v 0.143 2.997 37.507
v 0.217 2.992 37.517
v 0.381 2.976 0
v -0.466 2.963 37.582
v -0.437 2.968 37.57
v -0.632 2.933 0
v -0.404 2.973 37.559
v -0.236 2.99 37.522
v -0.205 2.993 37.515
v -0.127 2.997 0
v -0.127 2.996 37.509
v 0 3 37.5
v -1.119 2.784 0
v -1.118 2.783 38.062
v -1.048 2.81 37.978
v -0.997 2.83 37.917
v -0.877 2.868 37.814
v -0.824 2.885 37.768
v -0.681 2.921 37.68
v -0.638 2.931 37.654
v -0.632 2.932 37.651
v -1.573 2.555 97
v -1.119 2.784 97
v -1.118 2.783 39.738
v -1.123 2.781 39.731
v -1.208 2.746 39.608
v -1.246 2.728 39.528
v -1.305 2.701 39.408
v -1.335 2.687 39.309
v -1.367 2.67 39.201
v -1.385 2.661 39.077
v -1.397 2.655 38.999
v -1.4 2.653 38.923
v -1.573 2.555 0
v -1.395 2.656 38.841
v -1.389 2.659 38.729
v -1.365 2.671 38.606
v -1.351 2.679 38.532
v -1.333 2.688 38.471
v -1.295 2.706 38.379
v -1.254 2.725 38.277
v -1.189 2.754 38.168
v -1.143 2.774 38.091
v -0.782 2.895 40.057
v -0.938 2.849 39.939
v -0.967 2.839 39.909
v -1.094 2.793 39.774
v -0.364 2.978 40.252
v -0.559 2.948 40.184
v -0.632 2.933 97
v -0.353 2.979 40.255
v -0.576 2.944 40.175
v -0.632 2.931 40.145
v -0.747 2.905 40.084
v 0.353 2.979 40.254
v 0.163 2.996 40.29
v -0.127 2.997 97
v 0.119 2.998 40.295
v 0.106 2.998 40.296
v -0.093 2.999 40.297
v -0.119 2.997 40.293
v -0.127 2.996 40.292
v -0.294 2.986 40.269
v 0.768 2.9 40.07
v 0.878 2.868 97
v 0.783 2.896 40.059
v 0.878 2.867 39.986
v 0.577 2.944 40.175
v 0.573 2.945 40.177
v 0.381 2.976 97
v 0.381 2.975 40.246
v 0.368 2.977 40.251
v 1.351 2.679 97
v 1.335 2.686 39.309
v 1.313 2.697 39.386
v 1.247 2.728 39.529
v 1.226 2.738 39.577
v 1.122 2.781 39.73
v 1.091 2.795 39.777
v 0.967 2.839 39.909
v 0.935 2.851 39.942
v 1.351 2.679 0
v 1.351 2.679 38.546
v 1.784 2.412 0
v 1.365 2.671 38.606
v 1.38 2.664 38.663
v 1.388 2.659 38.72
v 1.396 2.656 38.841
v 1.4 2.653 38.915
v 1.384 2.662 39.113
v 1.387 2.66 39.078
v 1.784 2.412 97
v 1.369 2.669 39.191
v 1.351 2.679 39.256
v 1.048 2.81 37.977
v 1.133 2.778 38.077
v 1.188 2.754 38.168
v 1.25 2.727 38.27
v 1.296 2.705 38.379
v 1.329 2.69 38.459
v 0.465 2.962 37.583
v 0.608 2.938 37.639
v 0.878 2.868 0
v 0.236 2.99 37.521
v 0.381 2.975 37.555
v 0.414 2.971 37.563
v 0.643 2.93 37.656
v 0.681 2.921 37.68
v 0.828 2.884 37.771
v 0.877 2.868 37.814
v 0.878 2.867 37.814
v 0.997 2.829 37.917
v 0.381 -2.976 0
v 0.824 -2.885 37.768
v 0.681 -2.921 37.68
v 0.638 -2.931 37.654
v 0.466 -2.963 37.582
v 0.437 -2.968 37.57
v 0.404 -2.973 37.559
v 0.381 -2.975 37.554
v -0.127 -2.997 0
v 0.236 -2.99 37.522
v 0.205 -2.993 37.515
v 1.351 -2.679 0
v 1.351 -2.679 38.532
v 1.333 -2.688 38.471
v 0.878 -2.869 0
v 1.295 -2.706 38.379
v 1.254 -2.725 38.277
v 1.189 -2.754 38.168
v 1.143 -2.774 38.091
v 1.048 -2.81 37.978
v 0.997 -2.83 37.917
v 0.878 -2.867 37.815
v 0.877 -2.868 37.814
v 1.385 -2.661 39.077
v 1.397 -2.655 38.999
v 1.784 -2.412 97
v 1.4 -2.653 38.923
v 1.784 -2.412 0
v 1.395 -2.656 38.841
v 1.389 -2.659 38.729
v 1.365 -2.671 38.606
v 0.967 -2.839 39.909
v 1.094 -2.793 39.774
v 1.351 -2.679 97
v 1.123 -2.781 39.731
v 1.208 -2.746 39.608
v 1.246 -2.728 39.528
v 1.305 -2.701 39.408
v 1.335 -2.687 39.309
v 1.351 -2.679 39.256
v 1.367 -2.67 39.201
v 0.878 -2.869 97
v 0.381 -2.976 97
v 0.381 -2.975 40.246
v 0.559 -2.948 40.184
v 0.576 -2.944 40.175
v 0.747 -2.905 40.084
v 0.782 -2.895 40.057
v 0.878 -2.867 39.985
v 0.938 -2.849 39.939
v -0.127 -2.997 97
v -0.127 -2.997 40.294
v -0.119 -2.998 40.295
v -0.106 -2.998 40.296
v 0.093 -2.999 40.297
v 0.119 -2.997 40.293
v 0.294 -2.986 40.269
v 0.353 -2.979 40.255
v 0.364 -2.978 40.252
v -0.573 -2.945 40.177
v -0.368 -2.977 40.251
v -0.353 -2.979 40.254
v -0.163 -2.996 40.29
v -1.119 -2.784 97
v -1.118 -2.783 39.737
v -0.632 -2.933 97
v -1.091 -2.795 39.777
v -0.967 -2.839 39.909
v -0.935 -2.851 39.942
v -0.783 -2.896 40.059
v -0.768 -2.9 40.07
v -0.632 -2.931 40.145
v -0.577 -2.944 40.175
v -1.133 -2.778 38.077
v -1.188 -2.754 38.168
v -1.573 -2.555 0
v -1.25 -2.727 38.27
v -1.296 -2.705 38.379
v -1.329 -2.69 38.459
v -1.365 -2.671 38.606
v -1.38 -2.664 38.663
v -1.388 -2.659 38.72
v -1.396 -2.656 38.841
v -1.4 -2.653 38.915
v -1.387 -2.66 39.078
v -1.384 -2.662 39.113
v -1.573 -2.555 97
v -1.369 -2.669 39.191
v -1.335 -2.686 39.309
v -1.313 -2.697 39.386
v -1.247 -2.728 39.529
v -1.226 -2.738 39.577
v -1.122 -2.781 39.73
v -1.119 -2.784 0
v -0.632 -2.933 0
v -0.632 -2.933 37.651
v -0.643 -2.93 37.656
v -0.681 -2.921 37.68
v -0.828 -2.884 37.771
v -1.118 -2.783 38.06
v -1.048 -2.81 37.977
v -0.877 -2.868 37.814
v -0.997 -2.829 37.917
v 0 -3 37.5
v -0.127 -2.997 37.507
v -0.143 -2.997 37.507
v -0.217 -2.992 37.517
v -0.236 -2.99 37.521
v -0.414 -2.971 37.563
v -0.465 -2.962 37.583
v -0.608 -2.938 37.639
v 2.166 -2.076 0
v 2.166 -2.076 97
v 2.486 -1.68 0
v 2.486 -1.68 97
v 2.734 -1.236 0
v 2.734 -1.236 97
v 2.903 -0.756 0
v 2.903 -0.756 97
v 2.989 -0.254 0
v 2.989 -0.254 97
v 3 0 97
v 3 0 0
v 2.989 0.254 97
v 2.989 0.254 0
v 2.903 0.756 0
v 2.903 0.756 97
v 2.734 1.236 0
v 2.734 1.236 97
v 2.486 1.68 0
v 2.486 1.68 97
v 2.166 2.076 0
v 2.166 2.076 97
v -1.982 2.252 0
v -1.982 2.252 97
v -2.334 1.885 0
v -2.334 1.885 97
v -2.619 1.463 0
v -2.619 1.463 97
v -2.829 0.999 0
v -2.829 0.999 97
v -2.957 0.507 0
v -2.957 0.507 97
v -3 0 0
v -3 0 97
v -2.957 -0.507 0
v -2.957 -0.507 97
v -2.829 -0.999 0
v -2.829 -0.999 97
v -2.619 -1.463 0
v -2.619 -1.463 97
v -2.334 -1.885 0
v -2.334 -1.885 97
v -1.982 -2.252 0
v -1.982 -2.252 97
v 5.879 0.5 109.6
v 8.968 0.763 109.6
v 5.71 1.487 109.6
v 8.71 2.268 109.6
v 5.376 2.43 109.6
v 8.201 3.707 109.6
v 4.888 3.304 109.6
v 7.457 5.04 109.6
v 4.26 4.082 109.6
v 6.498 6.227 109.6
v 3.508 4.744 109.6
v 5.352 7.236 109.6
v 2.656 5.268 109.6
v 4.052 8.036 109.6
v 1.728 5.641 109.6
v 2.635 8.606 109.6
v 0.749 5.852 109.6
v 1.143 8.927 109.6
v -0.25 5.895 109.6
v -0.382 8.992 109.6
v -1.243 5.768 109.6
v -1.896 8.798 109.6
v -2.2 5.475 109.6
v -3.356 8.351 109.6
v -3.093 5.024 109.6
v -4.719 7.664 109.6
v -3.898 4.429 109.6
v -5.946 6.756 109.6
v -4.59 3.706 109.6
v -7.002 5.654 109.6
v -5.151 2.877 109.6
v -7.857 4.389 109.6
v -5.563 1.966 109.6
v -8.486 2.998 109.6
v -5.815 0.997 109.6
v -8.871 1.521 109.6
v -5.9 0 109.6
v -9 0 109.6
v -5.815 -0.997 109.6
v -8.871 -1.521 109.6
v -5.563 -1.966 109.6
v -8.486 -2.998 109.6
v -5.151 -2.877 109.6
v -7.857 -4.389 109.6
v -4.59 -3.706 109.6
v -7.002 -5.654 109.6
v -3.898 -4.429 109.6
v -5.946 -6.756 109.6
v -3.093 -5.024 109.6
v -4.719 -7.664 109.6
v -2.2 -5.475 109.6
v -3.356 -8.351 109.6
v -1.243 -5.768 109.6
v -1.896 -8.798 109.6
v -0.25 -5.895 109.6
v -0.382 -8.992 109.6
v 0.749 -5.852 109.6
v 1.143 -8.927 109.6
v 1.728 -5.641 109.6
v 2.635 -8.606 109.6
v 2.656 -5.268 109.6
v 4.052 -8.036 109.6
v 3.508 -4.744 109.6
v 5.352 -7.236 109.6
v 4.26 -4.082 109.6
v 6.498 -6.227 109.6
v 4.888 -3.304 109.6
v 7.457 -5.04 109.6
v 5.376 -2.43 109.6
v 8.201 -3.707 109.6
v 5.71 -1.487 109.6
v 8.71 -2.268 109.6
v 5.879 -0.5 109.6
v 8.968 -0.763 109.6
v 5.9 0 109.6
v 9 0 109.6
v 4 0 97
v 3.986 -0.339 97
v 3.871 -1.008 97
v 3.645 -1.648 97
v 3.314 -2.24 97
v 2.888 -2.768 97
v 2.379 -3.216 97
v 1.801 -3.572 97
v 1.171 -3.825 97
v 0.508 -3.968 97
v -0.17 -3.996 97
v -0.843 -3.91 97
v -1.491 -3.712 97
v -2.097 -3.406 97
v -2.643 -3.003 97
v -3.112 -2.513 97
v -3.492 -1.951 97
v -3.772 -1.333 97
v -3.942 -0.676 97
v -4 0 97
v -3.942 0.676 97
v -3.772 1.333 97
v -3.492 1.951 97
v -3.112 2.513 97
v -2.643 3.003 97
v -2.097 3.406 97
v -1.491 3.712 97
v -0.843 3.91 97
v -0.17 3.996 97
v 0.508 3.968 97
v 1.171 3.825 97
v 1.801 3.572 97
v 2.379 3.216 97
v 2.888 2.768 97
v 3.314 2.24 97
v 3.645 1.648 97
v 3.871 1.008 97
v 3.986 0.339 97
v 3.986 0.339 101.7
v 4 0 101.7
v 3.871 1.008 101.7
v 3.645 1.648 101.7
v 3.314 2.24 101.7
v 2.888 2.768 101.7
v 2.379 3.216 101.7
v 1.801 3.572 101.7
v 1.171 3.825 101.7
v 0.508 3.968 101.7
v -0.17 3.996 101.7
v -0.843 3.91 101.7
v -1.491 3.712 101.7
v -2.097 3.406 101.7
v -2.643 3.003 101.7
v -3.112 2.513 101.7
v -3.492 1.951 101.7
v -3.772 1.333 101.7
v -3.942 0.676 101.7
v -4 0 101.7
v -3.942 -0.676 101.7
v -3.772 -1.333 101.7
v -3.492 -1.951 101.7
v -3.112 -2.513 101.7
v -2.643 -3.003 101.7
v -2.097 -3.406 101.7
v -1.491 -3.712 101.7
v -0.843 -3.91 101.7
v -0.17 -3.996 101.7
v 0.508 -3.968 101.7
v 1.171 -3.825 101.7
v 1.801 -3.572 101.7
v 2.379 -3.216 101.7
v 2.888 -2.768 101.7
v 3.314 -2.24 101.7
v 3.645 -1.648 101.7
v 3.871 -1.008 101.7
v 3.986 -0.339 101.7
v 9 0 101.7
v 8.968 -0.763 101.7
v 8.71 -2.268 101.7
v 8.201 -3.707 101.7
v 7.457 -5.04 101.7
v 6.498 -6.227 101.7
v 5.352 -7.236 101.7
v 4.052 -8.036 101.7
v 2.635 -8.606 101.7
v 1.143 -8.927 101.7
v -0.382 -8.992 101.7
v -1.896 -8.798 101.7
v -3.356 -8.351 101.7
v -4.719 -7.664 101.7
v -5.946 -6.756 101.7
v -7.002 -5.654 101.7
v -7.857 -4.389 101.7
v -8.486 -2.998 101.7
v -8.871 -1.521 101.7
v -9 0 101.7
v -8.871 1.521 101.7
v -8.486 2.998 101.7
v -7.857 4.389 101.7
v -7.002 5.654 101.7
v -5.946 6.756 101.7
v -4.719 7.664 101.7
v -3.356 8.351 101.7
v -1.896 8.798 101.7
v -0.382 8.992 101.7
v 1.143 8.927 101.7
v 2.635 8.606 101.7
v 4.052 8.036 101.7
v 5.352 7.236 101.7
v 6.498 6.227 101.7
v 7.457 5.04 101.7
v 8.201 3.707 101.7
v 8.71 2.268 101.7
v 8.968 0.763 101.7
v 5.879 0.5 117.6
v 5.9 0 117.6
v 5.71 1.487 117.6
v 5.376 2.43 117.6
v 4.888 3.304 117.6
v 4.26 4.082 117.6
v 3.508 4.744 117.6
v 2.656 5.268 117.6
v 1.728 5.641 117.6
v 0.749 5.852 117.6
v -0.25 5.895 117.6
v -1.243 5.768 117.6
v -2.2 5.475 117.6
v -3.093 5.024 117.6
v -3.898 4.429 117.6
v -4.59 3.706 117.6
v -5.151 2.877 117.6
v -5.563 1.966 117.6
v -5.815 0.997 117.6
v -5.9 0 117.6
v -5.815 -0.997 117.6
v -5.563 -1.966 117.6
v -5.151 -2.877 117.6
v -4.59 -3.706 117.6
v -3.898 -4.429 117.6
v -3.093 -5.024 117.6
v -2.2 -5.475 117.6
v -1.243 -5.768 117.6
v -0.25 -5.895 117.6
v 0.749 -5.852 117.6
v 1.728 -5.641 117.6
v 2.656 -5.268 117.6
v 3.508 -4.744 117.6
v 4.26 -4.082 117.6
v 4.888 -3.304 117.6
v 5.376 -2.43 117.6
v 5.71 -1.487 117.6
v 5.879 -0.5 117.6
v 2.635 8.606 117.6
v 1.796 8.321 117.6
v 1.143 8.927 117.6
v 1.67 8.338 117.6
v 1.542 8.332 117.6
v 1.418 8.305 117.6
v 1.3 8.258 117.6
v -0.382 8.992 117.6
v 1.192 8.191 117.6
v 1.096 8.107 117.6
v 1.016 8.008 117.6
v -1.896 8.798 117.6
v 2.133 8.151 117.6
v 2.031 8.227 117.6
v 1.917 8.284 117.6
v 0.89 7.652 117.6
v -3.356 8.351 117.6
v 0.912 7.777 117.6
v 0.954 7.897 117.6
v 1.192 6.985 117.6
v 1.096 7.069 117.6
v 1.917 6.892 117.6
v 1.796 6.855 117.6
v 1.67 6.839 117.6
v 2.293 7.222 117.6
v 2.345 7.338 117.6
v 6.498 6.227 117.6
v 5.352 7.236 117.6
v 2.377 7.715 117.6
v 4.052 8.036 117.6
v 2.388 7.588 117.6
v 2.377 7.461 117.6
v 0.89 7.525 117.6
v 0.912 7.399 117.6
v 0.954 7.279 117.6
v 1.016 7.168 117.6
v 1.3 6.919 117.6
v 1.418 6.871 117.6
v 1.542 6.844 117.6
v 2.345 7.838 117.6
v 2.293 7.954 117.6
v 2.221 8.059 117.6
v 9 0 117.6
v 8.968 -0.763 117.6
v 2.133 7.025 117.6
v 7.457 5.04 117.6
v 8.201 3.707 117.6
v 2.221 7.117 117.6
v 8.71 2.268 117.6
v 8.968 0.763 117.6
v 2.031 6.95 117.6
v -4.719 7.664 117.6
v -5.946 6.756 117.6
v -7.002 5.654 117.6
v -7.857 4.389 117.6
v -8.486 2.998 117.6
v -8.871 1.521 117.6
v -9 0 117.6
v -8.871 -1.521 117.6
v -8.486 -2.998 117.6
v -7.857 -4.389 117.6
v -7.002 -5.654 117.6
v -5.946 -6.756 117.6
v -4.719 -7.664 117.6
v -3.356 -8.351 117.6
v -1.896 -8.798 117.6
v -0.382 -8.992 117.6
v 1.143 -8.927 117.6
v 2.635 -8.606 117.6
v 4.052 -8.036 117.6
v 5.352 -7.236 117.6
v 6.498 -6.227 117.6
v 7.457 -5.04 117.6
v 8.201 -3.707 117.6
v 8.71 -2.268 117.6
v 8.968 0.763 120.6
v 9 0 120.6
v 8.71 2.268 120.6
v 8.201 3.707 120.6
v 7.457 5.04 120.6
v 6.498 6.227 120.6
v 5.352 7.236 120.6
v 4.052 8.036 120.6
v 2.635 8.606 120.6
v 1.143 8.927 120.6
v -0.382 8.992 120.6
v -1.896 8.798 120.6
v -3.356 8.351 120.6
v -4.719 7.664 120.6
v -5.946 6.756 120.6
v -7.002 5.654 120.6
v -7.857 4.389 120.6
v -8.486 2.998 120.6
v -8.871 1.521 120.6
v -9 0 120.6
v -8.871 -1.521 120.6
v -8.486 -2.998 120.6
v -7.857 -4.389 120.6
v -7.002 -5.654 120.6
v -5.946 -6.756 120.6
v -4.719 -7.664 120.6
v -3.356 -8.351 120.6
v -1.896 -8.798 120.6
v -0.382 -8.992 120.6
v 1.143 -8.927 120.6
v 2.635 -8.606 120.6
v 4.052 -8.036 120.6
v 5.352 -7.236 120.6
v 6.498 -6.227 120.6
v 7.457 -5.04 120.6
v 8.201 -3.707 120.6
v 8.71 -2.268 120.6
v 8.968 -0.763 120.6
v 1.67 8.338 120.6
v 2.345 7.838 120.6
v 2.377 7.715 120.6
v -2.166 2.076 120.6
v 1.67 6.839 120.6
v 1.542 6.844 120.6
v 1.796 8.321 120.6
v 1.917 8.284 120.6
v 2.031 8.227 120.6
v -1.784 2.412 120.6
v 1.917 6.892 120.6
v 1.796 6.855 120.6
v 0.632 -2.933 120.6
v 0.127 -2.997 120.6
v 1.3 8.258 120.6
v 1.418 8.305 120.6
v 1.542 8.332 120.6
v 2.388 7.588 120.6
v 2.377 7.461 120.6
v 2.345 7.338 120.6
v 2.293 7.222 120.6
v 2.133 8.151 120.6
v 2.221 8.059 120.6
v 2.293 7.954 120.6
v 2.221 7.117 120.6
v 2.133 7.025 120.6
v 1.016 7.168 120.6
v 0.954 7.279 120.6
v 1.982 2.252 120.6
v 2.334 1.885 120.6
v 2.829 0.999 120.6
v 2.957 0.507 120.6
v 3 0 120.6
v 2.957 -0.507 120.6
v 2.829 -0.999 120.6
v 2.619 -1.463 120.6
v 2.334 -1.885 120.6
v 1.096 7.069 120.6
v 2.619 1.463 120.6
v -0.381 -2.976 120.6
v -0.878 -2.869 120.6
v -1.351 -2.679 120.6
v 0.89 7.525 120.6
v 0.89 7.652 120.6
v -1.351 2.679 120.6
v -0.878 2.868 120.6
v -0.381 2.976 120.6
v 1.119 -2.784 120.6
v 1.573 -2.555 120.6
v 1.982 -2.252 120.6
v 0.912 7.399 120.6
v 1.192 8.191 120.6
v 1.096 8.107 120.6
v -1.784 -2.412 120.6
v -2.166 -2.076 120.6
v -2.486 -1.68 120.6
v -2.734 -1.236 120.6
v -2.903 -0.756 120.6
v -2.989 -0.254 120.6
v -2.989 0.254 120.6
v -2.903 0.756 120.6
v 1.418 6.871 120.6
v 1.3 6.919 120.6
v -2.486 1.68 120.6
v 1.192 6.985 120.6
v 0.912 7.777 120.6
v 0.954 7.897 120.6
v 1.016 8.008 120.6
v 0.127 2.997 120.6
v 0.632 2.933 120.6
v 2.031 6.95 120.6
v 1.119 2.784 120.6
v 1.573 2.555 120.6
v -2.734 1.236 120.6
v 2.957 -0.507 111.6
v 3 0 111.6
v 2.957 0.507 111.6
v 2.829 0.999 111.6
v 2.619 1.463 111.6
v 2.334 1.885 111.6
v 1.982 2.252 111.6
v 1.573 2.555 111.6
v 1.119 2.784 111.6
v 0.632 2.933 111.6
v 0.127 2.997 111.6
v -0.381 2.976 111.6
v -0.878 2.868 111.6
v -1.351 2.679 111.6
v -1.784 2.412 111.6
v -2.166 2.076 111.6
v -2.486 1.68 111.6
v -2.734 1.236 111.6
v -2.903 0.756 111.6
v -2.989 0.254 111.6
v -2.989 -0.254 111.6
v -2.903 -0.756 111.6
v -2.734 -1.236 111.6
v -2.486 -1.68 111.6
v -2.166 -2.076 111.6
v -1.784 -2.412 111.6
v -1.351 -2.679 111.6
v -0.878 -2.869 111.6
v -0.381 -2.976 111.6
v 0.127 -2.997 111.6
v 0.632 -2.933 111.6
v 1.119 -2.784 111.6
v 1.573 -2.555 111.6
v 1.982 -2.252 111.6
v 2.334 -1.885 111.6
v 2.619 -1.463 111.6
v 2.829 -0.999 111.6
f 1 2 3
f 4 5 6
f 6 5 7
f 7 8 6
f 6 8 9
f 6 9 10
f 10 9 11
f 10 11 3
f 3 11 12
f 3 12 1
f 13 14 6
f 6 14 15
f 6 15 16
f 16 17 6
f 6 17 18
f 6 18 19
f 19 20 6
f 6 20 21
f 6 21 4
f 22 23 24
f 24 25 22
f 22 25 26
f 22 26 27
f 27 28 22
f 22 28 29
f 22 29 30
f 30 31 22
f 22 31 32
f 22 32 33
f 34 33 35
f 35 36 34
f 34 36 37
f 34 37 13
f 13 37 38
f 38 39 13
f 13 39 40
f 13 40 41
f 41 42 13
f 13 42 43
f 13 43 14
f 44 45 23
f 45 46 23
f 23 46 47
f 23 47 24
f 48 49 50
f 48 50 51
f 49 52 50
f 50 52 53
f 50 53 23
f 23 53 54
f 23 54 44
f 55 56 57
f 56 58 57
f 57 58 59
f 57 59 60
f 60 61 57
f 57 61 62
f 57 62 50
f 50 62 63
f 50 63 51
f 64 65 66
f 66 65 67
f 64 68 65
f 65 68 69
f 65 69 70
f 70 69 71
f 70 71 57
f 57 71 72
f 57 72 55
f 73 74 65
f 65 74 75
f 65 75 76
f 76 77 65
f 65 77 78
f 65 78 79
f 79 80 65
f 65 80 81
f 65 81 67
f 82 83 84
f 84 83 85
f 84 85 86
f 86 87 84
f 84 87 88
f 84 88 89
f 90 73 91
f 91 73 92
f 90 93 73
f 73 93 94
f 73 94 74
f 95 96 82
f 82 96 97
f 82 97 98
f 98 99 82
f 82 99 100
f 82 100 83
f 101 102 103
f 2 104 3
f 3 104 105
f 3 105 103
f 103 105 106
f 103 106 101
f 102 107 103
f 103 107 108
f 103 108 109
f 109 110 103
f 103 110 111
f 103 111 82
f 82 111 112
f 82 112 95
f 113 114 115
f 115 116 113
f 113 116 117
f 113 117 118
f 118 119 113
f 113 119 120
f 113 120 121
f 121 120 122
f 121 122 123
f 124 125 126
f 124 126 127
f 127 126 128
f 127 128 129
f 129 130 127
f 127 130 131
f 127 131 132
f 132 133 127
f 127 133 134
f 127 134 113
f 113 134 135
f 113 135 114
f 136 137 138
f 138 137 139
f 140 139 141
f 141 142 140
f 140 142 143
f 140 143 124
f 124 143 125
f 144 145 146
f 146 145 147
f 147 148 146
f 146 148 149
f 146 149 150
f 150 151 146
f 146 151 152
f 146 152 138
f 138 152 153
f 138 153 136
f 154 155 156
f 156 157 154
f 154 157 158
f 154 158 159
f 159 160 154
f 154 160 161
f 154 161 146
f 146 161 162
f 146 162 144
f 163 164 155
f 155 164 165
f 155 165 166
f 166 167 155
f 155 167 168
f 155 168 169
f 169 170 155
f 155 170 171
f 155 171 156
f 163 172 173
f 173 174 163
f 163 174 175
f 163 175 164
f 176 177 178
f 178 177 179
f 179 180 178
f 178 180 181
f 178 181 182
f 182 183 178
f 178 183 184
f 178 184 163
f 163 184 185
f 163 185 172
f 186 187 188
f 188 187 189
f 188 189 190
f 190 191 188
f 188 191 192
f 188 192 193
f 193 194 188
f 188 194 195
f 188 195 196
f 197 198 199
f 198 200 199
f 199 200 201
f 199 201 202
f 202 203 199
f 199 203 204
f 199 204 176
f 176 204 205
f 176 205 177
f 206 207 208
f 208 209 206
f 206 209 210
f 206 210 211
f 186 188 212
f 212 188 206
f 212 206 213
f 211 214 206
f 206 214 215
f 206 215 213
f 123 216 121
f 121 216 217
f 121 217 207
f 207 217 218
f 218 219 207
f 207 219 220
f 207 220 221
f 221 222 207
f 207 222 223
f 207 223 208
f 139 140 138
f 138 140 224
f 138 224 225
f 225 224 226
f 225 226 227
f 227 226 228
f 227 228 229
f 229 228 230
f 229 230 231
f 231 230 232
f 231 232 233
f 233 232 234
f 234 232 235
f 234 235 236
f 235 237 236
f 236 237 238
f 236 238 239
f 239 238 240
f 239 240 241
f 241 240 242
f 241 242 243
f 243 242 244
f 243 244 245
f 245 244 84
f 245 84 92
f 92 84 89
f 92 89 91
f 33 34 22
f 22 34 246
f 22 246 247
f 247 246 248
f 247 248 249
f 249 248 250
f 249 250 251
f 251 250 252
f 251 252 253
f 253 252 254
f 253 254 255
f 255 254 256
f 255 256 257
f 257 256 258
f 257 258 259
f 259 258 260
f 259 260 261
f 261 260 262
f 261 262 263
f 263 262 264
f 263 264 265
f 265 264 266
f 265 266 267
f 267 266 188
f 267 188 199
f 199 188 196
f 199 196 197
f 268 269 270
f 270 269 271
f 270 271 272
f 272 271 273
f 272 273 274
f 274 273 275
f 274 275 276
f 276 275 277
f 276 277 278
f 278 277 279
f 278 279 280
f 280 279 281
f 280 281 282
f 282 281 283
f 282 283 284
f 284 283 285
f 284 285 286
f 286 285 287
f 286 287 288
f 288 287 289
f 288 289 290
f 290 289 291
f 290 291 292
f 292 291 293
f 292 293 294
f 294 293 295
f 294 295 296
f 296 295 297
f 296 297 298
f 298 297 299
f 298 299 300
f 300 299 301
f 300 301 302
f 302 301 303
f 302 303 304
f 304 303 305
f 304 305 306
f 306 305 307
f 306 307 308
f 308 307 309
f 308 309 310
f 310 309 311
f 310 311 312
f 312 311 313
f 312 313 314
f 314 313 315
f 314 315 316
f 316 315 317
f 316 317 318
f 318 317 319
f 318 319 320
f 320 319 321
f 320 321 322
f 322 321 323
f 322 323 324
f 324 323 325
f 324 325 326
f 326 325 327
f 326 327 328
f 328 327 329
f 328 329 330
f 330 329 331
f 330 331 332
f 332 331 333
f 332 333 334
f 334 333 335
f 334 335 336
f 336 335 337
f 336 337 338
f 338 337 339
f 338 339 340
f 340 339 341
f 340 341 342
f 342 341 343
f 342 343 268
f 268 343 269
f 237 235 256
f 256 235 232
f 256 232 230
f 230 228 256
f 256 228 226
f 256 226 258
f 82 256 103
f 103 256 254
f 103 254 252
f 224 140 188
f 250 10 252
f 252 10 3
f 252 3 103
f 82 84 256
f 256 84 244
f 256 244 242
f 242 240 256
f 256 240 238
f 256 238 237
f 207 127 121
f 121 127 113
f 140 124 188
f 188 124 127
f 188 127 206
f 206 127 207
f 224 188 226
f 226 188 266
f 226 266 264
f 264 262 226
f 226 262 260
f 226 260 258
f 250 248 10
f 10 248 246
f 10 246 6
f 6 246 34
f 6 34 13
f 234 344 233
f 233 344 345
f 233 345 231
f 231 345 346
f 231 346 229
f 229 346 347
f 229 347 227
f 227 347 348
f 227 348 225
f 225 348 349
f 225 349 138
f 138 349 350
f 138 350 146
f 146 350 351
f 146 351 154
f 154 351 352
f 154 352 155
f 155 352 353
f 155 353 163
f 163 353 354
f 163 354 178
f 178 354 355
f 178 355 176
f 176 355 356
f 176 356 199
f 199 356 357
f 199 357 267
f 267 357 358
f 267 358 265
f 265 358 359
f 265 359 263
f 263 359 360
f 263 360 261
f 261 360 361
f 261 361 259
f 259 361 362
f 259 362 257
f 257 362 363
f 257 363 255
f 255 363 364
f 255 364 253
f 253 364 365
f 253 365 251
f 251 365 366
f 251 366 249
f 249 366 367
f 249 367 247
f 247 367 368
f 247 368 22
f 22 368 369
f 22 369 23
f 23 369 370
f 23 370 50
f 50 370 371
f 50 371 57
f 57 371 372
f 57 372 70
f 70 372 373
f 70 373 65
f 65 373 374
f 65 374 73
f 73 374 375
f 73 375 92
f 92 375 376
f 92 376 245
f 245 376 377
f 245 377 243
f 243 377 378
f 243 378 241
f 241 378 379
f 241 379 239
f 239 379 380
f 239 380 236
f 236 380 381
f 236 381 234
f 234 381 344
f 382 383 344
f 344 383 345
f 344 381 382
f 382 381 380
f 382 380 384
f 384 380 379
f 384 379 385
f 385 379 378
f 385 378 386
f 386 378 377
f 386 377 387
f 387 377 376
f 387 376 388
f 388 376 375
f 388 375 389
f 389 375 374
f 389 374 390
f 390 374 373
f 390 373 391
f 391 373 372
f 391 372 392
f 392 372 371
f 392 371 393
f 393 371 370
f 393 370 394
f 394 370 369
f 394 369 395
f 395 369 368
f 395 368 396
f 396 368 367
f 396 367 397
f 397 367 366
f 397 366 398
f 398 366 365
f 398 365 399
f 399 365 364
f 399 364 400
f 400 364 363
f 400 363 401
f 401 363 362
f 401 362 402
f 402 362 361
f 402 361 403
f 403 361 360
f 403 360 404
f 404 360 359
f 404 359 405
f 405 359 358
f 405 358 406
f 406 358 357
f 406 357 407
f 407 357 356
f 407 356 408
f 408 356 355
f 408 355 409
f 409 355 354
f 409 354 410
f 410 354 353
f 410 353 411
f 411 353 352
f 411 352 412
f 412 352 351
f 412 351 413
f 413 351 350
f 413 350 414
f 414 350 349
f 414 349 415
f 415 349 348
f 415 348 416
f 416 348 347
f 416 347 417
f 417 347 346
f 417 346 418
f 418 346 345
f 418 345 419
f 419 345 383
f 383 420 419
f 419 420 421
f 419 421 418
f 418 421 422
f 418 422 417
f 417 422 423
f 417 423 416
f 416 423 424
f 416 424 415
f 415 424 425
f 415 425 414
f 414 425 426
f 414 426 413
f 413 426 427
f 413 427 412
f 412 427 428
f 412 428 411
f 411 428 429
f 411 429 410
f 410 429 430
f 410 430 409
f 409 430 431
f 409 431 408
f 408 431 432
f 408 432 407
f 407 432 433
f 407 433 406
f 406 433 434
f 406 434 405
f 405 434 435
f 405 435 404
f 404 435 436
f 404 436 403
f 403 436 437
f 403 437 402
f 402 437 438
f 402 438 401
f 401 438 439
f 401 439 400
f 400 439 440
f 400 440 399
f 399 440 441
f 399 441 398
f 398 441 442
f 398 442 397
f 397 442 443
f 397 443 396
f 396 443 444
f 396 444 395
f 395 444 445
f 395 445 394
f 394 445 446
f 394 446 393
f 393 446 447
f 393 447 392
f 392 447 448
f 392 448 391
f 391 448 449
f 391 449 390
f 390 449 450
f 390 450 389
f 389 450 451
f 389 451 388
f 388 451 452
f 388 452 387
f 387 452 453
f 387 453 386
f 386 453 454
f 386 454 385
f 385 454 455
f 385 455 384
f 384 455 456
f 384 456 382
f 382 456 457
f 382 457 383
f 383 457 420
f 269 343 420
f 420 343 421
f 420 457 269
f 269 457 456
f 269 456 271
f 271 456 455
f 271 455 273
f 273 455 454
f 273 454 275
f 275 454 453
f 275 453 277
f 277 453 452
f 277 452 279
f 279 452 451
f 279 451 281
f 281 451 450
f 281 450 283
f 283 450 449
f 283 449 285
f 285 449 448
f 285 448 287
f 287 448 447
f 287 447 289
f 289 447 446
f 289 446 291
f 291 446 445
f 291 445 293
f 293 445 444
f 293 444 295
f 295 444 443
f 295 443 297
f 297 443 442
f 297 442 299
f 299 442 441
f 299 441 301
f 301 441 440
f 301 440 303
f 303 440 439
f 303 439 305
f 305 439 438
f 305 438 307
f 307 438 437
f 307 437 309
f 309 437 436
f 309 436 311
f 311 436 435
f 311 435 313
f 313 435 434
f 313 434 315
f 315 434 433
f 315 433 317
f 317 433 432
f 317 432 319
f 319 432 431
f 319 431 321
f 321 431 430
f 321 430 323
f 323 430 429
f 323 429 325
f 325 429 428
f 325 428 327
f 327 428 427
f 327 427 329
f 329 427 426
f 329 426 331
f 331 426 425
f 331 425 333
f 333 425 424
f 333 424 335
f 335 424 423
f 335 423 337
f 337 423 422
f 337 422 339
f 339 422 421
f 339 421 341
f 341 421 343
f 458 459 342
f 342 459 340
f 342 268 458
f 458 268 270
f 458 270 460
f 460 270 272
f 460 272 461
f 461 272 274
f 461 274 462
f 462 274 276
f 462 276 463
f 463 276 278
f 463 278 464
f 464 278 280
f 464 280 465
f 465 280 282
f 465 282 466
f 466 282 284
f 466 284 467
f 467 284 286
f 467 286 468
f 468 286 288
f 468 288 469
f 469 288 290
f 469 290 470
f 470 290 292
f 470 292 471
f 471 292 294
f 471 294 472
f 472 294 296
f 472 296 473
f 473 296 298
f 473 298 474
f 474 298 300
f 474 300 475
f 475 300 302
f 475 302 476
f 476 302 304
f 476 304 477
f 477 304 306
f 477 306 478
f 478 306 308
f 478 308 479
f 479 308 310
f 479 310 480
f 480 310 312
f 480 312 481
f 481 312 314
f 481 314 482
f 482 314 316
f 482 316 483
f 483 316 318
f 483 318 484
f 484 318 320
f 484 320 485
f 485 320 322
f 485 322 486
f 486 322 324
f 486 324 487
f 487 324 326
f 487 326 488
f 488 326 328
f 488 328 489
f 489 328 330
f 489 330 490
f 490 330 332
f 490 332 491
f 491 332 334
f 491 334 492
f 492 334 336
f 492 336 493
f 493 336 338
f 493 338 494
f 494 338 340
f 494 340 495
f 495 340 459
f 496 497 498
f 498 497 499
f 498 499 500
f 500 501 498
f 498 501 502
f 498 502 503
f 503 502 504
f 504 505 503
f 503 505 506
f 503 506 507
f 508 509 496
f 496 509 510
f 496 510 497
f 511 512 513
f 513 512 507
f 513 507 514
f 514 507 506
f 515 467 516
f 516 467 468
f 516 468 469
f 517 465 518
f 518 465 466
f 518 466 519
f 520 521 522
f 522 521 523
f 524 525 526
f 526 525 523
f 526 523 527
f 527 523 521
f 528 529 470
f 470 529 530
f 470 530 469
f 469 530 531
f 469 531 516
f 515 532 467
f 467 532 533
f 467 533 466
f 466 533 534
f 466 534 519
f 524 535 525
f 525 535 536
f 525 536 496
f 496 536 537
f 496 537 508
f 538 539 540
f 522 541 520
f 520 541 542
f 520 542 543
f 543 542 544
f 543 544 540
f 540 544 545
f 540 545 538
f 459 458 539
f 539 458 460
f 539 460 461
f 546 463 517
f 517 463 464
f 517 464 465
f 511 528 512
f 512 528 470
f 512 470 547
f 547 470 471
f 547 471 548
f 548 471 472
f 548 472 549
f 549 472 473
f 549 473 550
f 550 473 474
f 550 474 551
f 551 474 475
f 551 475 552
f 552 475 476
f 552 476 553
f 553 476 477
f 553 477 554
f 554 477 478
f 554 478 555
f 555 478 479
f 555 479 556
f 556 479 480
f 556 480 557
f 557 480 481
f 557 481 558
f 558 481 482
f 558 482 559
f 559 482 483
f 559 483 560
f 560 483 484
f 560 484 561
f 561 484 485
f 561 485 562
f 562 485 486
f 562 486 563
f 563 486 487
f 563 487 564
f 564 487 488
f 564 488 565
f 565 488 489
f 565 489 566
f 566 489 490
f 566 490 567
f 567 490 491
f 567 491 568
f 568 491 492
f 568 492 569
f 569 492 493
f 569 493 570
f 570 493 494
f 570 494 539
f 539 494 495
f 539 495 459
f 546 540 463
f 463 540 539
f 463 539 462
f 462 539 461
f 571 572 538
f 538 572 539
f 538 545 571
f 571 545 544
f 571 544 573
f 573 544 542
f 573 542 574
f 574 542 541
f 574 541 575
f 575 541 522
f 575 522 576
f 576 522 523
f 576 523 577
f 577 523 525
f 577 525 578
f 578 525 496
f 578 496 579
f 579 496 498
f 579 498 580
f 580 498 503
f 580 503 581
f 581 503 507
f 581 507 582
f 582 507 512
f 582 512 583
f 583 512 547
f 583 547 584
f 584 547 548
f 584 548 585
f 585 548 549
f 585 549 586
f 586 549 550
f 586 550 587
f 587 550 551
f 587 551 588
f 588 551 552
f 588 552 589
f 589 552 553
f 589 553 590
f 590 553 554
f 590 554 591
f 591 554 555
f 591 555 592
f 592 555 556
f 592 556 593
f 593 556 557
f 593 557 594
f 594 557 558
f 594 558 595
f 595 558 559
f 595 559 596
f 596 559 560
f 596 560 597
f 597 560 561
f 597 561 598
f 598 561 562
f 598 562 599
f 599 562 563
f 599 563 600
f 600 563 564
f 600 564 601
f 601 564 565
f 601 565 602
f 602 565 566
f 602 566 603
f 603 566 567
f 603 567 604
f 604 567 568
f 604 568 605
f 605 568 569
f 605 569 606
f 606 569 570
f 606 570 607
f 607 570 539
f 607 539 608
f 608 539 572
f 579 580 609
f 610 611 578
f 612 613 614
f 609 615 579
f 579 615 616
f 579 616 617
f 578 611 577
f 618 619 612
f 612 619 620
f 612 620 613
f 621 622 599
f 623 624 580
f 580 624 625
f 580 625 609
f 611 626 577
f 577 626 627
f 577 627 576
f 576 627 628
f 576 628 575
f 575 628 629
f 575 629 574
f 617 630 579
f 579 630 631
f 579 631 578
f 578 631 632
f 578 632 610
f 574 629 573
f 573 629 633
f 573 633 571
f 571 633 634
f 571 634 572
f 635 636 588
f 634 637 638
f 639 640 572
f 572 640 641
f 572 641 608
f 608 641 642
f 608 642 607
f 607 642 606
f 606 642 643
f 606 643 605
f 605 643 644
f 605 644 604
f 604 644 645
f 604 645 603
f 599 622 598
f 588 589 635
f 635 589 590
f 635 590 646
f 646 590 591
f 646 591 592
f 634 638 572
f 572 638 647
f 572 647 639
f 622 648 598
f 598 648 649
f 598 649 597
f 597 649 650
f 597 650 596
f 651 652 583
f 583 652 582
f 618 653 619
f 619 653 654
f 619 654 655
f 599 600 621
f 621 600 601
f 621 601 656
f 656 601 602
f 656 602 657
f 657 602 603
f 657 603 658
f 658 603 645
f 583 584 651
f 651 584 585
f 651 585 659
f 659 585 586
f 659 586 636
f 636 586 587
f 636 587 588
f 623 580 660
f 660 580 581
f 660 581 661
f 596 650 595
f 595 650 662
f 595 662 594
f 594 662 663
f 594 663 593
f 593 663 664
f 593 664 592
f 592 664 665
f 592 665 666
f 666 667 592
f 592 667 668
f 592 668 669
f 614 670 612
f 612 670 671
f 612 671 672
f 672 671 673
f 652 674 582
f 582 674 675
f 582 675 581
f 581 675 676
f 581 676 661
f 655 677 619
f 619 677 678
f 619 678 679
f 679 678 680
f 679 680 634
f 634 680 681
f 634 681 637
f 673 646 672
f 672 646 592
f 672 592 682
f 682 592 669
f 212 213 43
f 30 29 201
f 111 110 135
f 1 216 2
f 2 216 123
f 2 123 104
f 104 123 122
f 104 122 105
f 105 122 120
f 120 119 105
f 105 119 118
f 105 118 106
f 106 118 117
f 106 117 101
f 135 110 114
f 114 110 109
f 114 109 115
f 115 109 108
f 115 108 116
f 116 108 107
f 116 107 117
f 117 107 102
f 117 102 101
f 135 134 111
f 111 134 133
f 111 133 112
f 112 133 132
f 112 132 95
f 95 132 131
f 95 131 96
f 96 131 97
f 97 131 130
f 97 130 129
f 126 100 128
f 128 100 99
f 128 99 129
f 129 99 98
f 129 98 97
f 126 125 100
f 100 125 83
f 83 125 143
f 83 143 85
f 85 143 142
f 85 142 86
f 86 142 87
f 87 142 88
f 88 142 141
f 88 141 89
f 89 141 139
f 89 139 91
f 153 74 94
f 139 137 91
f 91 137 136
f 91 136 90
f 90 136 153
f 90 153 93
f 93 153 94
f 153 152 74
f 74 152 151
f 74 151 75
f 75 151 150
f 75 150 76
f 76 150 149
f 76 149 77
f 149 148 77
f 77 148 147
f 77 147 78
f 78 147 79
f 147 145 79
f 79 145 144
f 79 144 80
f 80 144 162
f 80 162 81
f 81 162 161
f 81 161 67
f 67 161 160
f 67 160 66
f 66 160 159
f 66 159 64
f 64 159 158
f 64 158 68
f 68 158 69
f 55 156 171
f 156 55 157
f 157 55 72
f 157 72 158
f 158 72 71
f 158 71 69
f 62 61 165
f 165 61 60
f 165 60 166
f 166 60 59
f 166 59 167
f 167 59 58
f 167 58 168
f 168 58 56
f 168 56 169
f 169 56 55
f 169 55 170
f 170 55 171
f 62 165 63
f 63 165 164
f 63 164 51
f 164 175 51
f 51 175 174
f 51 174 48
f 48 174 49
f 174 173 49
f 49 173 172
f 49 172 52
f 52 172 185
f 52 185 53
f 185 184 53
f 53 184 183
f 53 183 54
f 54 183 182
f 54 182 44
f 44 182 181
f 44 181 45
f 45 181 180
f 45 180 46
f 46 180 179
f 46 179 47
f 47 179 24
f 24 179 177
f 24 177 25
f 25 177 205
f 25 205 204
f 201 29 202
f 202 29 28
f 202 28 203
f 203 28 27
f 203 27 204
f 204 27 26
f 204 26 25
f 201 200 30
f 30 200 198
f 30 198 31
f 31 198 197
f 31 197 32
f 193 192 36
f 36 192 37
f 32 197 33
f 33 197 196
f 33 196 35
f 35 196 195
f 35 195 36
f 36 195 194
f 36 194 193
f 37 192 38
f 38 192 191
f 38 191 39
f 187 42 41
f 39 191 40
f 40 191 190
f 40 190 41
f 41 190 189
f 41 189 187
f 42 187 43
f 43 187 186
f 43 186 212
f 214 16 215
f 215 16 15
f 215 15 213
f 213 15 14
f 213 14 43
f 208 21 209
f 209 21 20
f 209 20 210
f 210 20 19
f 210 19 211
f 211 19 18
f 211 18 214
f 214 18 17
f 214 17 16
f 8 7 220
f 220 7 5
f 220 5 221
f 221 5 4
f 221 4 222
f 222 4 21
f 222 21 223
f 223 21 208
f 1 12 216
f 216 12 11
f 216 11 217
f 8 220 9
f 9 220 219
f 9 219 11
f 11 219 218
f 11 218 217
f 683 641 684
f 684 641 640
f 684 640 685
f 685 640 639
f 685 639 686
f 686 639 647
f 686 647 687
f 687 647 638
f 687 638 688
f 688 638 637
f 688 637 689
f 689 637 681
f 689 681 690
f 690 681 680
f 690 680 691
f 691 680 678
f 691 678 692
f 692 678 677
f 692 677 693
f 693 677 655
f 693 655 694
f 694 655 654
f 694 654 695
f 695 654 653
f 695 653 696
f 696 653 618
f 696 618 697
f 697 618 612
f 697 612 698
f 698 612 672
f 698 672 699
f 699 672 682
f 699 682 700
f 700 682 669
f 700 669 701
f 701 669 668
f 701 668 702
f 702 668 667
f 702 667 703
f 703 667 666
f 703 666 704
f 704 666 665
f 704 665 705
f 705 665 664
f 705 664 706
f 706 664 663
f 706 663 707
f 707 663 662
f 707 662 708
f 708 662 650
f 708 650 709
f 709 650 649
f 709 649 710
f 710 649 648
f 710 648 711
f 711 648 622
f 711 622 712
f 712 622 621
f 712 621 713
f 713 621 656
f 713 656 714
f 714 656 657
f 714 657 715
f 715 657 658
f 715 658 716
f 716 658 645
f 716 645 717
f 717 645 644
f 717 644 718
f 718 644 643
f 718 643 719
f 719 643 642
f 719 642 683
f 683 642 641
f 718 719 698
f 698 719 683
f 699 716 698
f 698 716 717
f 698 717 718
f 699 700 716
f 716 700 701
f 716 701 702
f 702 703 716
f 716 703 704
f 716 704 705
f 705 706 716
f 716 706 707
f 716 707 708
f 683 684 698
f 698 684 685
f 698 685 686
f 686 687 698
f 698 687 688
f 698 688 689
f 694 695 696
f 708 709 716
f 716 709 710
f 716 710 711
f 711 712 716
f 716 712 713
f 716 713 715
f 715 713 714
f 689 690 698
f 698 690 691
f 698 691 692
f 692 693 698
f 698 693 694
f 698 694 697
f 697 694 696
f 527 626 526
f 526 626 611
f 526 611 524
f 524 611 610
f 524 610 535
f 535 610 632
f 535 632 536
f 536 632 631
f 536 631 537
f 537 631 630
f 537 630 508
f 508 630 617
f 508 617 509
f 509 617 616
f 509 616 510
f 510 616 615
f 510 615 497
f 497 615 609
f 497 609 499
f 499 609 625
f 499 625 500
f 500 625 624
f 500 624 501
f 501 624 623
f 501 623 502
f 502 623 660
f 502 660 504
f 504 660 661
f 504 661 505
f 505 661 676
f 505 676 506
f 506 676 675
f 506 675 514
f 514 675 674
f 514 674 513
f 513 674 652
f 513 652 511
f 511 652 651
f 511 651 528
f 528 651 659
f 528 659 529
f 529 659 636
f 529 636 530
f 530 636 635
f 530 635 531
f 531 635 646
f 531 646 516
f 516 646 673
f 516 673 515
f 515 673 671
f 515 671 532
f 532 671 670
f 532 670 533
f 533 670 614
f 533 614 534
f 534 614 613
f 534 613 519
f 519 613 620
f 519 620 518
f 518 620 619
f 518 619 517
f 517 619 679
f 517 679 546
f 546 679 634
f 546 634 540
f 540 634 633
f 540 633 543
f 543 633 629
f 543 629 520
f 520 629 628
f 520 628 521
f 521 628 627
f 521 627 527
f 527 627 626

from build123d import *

# Parameters (mm, degrees)
SKETCH1_R               = 3
BOSS_EXTRUDE1_DEPTH     = 97
SKETCH2_R               = 4
BOSS_EXTRUDE2_DEPTH     = 4.7
SKETCH3_R               = 9
BOSS_EXTRUDE3_DEPTH     = 7.9
SKETCH4_R               = 5.9
BOSS_EXTRUDE4_DEPTH     = 8
SKETCH5_R               = 9
BOSS_EXTRUDE5_DEPTH     = 3
CUT_EXTRUDE1_DEPTH      = 82
CUT_EXTRUDE1_DEPTH_BACK = 82
SKETCH6_R               = 1.4
CUT_EXTRUDE2_START      = -9
SKETCH7_R               = 3
SKETCH7_R_2             = 0.75
CUT_EXTRUDE2_DEPTH      = 9


with BuildPart() as part:
    # Sketch1 → Boss-Extrude1 (new body)
    with BuildSketch(Plane.XY):
        Circle(SKETCH1_R)
    extrude(amount=BOSS_EXTRUDE1_DEPTH)

    # Sketch2 → Boss-Extrude2 (add)
    with BuildSketch(Plane.XY.offset(97)):
        Circle(SKETCH2_R)
    extrude(amount=BOSS_EXTRUDE2_DEPTH)

    # Sketch3 → Boss-Extrude3 (add)
    with BuildSketch(Plane.XY.offset(101.7)):
        Circle(SKETCH3_R)
    extrude(amount=BOSS_EXTRUDE3_DEPTH)

    # Sketch4 → Boss-Extrude4 (add)
    with BuildSketch(Plane.XY.offset(109.6)):
        Circle(SKETCH4_R)
    extrude(amount=BOSS_EXTRUDE4_DEPTH)

    # Sketch5 → Boss-Extrude5 (add)
    with BuildSketch(Plane.XY.offset(117.6)):
        Circle(SKETCH5_R)
    extrude(amount=BOSS_EXTRUDE5_DEPTH)

    # Sketch6 → Cut-Extrude1 (cut, two sides: drawn at the far end of the back side and taken through both)
    with BuildSketch(Plane(origin=(0, 0, 0), x_dir=(1, 0, 0), z_dir=(0, 1, 0)).offset(-CUT_EXTRUDE1_DEPTH_BACK)):
        with Locations((0, -38.9)):
            Circle(SKETCH6_R)
    extrude(amount=CUT_EXTRUDE1_DEPTH + CUT_EXTRUDE1_DEPTH_BACK, mode=Mode.SUBTRACT)

    # Sketch7 → Cut-Extrude2 (cut)
    with BuildSketch(Plane.XY.offset(120.6).offset(CUT_EXTRUDE2_START)):
        Circle(SKETCH7_R)
        with Locations((1.637751338, 7.588247864)):
            Circle(SKETCH7_R_2)
    extrude(amount=CUT_EXTRUDE2_DEPTH, mode=Mode.SUBTRACT)


solid = part.part
